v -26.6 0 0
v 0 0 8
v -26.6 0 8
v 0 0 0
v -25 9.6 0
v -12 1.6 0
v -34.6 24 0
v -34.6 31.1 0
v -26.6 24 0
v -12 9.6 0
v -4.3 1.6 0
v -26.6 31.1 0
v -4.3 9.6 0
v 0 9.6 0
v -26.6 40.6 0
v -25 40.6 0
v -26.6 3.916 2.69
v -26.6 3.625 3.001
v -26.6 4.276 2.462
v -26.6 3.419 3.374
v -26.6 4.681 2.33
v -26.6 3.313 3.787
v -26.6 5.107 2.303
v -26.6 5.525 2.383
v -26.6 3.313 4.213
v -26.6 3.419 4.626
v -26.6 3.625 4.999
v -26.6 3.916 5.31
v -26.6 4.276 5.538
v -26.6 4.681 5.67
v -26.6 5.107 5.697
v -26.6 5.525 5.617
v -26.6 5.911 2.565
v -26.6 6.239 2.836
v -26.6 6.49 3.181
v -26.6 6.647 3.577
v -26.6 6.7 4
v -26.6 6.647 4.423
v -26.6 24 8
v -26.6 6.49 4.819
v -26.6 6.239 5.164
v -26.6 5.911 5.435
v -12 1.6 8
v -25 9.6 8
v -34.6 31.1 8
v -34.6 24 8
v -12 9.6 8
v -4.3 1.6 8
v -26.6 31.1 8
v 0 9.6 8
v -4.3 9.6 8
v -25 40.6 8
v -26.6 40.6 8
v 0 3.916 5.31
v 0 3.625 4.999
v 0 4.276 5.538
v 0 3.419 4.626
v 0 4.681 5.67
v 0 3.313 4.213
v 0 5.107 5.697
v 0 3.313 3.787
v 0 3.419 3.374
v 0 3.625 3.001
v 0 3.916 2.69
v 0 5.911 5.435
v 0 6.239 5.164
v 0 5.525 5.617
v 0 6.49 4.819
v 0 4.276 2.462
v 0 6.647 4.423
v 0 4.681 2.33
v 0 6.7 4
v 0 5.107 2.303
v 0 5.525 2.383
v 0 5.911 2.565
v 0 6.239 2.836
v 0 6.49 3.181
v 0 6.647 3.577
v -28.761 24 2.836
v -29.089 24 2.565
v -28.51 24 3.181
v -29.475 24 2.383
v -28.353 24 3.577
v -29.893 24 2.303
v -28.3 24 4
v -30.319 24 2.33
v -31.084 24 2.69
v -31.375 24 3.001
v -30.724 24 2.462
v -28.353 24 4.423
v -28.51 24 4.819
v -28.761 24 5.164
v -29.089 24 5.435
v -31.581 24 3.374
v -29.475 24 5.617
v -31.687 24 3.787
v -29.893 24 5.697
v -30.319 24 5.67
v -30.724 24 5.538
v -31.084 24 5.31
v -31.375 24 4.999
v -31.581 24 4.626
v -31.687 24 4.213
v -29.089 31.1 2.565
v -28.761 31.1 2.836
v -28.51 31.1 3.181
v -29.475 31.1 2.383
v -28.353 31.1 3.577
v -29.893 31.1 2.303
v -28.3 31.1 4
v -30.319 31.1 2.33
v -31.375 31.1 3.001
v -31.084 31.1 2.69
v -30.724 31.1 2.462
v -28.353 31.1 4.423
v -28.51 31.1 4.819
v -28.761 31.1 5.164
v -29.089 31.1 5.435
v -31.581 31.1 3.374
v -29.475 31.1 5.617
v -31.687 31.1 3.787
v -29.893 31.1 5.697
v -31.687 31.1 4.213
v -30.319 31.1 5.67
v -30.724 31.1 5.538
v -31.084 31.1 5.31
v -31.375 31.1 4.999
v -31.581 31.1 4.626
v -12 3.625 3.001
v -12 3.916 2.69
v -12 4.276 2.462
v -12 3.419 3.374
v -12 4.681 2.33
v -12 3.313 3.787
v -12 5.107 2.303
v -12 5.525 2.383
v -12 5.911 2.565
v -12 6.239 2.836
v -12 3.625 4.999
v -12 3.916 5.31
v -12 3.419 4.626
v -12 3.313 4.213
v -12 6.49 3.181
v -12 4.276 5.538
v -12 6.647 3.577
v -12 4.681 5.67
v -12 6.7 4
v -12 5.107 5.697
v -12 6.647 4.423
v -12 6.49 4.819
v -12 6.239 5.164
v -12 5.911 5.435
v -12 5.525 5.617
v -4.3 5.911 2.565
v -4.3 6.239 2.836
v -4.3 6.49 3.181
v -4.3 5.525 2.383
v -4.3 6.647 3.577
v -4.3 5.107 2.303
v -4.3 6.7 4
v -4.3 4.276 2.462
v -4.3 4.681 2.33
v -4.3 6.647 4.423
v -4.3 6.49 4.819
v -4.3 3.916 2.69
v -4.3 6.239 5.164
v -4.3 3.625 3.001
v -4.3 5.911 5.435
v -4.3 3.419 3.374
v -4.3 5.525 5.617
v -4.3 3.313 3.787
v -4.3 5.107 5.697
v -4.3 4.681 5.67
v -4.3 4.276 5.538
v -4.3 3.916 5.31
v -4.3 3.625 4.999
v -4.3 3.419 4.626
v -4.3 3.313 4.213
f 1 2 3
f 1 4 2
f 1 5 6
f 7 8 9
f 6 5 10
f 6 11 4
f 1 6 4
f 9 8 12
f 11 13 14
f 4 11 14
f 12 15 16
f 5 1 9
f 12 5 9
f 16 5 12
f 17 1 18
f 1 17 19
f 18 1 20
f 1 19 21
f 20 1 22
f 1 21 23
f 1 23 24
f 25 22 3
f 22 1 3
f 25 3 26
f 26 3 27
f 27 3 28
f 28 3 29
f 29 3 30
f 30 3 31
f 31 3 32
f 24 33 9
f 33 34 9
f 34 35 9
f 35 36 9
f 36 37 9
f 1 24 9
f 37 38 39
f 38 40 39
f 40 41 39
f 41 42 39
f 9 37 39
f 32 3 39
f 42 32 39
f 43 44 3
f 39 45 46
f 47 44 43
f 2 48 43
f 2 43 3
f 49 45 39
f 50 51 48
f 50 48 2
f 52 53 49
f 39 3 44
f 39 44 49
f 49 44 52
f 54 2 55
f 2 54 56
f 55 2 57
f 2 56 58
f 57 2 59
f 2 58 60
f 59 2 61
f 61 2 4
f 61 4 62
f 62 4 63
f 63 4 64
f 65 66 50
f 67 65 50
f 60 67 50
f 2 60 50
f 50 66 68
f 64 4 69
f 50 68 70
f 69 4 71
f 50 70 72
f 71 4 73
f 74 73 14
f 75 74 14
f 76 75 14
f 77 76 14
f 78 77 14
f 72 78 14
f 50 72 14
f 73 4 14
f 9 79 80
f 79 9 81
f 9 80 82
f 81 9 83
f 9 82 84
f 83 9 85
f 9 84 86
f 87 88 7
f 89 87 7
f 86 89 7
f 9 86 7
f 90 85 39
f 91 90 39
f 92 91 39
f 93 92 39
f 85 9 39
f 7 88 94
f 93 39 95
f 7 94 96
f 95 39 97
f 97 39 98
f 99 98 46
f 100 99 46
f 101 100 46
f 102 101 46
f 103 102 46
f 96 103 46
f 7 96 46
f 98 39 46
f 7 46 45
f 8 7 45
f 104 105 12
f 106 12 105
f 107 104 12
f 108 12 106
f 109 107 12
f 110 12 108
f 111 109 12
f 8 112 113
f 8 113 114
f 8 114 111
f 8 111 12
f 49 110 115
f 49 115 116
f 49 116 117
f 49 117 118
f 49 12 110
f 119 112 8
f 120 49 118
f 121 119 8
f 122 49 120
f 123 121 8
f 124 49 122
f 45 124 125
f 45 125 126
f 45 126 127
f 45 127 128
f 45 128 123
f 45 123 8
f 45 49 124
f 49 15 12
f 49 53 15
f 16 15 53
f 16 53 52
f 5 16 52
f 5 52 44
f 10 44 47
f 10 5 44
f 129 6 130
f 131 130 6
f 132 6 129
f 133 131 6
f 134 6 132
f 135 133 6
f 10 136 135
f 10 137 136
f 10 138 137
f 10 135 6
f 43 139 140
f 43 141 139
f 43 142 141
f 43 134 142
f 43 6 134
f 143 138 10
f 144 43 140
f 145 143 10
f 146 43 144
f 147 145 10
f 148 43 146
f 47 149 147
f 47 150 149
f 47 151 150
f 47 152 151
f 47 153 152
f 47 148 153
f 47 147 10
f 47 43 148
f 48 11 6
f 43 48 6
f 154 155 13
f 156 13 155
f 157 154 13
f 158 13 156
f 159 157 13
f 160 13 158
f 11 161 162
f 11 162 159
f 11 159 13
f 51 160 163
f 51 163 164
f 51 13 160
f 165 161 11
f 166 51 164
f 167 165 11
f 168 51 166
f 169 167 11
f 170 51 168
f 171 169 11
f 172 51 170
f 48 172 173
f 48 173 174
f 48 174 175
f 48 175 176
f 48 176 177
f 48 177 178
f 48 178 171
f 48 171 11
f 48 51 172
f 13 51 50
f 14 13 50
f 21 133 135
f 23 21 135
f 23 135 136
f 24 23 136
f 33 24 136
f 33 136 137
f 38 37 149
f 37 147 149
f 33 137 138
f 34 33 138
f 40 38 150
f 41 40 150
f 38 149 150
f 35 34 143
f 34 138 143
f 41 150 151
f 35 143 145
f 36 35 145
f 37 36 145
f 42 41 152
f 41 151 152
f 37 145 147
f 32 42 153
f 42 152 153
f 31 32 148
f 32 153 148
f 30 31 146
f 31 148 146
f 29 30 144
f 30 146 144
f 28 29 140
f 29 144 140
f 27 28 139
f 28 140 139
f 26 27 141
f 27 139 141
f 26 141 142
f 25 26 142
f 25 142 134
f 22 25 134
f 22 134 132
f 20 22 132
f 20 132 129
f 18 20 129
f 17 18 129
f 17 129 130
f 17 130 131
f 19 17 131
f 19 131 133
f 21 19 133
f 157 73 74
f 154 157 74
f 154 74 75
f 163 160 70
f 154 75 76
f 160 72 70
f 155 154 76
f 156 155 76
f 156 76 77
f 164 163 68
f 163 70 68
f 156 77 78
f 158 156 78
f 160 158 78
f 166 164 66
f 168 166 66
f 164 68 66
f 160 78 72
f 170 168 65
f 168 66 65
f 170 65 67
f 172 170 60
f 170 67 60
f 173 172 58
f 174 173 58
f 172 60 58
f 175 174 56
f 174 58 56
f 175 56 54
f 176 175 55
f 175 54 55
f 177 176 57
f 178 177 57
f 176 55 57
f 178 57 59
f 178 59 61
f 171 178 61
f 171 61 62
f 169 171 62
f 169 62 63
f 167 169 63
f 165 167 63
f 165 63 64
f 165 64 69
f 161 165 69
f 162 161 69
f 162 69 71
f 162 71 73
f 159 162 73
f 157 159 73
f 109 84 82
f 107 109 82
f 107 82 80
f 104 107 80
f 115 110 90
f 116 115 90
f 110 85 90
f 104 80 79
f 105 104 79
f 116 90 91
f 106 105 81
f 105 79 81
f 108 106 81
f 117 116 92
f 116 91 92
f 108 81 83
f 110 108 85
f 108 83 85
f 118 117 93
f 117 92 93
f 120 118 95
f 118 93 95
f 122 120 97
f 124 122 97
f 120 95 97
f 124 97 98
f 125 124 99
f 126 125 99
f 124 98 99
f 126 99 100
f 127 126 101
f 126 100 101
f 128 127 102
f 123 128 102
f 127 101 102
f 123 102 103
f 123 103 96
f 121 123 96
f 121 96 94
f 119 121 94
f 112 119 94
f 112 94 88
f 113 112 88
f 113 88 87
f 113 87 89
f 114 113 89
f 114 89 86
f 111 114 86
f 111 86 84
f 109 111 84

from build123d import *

# Parameters (mm, degrees)
PAD_DEPTH       = 8
SKETCH001_W     = 8
SKETCH001_H     = 9.5
SKETCH001_H_2   = 24
SKETCH001_W_2   = 7.7
SKETCH001_H_3   = 8
POCKET_DEPTH    = 9
SKETCH002_R     = 1.7
POCKET001_DEPTH = 9
SKETCH003_R     = 1.7
POCKET002_DEPTH = 35


with BuildPart() as part:
    # Sketch → Pad (new body)
    with BuildSketch(Plane.XY):
        Polygon((0, 0), (-34.6, 0), (-34.6, 40.6), (-25, 40.6), (-25, 9.6), (0, 9.6), align=None)
    extrude(amount=PAD_DEPTH)

    # Sketch001 → Pocket (cut)
    with BuildSketch(Plane.XY.offset(8)):
        with Locations((-30.6, 35.85)):
            Rectangle(SKETCH001_W, SKETCH001_H)
        with Locations((-30.6, 12)):
            Rectangle(SKETCH001_W, SKETCH001_H_2)
        with Locations((-8.15, 5.6)):
            Rectangle(SKETCH001_W_2, SKETCH001_H_3)
    extrude(amount=-POCKET_DEPTH, mode=Mode.SUBTRACT)

    # Sketch002 → Pocket001 (cut)
    with BuildSketch(Plane.XZ.offset(-24)):
        with Locations((-30, 4)):
            Circle(SKETCH002_R)
    extrude(amount=-POCKET001_DEPTH, mode=Mode.SUBTRACT)

    # Sketch003 → Pocket002 (cut)
    with BuildSketch(Plane.YZ):
        with Locations((5, 4)):
            Circle(SKETCH003_R)
    extrude(amount=-POCKET002_DEPTH, mode=Mode.SUBTRACT)


solid = part.part
